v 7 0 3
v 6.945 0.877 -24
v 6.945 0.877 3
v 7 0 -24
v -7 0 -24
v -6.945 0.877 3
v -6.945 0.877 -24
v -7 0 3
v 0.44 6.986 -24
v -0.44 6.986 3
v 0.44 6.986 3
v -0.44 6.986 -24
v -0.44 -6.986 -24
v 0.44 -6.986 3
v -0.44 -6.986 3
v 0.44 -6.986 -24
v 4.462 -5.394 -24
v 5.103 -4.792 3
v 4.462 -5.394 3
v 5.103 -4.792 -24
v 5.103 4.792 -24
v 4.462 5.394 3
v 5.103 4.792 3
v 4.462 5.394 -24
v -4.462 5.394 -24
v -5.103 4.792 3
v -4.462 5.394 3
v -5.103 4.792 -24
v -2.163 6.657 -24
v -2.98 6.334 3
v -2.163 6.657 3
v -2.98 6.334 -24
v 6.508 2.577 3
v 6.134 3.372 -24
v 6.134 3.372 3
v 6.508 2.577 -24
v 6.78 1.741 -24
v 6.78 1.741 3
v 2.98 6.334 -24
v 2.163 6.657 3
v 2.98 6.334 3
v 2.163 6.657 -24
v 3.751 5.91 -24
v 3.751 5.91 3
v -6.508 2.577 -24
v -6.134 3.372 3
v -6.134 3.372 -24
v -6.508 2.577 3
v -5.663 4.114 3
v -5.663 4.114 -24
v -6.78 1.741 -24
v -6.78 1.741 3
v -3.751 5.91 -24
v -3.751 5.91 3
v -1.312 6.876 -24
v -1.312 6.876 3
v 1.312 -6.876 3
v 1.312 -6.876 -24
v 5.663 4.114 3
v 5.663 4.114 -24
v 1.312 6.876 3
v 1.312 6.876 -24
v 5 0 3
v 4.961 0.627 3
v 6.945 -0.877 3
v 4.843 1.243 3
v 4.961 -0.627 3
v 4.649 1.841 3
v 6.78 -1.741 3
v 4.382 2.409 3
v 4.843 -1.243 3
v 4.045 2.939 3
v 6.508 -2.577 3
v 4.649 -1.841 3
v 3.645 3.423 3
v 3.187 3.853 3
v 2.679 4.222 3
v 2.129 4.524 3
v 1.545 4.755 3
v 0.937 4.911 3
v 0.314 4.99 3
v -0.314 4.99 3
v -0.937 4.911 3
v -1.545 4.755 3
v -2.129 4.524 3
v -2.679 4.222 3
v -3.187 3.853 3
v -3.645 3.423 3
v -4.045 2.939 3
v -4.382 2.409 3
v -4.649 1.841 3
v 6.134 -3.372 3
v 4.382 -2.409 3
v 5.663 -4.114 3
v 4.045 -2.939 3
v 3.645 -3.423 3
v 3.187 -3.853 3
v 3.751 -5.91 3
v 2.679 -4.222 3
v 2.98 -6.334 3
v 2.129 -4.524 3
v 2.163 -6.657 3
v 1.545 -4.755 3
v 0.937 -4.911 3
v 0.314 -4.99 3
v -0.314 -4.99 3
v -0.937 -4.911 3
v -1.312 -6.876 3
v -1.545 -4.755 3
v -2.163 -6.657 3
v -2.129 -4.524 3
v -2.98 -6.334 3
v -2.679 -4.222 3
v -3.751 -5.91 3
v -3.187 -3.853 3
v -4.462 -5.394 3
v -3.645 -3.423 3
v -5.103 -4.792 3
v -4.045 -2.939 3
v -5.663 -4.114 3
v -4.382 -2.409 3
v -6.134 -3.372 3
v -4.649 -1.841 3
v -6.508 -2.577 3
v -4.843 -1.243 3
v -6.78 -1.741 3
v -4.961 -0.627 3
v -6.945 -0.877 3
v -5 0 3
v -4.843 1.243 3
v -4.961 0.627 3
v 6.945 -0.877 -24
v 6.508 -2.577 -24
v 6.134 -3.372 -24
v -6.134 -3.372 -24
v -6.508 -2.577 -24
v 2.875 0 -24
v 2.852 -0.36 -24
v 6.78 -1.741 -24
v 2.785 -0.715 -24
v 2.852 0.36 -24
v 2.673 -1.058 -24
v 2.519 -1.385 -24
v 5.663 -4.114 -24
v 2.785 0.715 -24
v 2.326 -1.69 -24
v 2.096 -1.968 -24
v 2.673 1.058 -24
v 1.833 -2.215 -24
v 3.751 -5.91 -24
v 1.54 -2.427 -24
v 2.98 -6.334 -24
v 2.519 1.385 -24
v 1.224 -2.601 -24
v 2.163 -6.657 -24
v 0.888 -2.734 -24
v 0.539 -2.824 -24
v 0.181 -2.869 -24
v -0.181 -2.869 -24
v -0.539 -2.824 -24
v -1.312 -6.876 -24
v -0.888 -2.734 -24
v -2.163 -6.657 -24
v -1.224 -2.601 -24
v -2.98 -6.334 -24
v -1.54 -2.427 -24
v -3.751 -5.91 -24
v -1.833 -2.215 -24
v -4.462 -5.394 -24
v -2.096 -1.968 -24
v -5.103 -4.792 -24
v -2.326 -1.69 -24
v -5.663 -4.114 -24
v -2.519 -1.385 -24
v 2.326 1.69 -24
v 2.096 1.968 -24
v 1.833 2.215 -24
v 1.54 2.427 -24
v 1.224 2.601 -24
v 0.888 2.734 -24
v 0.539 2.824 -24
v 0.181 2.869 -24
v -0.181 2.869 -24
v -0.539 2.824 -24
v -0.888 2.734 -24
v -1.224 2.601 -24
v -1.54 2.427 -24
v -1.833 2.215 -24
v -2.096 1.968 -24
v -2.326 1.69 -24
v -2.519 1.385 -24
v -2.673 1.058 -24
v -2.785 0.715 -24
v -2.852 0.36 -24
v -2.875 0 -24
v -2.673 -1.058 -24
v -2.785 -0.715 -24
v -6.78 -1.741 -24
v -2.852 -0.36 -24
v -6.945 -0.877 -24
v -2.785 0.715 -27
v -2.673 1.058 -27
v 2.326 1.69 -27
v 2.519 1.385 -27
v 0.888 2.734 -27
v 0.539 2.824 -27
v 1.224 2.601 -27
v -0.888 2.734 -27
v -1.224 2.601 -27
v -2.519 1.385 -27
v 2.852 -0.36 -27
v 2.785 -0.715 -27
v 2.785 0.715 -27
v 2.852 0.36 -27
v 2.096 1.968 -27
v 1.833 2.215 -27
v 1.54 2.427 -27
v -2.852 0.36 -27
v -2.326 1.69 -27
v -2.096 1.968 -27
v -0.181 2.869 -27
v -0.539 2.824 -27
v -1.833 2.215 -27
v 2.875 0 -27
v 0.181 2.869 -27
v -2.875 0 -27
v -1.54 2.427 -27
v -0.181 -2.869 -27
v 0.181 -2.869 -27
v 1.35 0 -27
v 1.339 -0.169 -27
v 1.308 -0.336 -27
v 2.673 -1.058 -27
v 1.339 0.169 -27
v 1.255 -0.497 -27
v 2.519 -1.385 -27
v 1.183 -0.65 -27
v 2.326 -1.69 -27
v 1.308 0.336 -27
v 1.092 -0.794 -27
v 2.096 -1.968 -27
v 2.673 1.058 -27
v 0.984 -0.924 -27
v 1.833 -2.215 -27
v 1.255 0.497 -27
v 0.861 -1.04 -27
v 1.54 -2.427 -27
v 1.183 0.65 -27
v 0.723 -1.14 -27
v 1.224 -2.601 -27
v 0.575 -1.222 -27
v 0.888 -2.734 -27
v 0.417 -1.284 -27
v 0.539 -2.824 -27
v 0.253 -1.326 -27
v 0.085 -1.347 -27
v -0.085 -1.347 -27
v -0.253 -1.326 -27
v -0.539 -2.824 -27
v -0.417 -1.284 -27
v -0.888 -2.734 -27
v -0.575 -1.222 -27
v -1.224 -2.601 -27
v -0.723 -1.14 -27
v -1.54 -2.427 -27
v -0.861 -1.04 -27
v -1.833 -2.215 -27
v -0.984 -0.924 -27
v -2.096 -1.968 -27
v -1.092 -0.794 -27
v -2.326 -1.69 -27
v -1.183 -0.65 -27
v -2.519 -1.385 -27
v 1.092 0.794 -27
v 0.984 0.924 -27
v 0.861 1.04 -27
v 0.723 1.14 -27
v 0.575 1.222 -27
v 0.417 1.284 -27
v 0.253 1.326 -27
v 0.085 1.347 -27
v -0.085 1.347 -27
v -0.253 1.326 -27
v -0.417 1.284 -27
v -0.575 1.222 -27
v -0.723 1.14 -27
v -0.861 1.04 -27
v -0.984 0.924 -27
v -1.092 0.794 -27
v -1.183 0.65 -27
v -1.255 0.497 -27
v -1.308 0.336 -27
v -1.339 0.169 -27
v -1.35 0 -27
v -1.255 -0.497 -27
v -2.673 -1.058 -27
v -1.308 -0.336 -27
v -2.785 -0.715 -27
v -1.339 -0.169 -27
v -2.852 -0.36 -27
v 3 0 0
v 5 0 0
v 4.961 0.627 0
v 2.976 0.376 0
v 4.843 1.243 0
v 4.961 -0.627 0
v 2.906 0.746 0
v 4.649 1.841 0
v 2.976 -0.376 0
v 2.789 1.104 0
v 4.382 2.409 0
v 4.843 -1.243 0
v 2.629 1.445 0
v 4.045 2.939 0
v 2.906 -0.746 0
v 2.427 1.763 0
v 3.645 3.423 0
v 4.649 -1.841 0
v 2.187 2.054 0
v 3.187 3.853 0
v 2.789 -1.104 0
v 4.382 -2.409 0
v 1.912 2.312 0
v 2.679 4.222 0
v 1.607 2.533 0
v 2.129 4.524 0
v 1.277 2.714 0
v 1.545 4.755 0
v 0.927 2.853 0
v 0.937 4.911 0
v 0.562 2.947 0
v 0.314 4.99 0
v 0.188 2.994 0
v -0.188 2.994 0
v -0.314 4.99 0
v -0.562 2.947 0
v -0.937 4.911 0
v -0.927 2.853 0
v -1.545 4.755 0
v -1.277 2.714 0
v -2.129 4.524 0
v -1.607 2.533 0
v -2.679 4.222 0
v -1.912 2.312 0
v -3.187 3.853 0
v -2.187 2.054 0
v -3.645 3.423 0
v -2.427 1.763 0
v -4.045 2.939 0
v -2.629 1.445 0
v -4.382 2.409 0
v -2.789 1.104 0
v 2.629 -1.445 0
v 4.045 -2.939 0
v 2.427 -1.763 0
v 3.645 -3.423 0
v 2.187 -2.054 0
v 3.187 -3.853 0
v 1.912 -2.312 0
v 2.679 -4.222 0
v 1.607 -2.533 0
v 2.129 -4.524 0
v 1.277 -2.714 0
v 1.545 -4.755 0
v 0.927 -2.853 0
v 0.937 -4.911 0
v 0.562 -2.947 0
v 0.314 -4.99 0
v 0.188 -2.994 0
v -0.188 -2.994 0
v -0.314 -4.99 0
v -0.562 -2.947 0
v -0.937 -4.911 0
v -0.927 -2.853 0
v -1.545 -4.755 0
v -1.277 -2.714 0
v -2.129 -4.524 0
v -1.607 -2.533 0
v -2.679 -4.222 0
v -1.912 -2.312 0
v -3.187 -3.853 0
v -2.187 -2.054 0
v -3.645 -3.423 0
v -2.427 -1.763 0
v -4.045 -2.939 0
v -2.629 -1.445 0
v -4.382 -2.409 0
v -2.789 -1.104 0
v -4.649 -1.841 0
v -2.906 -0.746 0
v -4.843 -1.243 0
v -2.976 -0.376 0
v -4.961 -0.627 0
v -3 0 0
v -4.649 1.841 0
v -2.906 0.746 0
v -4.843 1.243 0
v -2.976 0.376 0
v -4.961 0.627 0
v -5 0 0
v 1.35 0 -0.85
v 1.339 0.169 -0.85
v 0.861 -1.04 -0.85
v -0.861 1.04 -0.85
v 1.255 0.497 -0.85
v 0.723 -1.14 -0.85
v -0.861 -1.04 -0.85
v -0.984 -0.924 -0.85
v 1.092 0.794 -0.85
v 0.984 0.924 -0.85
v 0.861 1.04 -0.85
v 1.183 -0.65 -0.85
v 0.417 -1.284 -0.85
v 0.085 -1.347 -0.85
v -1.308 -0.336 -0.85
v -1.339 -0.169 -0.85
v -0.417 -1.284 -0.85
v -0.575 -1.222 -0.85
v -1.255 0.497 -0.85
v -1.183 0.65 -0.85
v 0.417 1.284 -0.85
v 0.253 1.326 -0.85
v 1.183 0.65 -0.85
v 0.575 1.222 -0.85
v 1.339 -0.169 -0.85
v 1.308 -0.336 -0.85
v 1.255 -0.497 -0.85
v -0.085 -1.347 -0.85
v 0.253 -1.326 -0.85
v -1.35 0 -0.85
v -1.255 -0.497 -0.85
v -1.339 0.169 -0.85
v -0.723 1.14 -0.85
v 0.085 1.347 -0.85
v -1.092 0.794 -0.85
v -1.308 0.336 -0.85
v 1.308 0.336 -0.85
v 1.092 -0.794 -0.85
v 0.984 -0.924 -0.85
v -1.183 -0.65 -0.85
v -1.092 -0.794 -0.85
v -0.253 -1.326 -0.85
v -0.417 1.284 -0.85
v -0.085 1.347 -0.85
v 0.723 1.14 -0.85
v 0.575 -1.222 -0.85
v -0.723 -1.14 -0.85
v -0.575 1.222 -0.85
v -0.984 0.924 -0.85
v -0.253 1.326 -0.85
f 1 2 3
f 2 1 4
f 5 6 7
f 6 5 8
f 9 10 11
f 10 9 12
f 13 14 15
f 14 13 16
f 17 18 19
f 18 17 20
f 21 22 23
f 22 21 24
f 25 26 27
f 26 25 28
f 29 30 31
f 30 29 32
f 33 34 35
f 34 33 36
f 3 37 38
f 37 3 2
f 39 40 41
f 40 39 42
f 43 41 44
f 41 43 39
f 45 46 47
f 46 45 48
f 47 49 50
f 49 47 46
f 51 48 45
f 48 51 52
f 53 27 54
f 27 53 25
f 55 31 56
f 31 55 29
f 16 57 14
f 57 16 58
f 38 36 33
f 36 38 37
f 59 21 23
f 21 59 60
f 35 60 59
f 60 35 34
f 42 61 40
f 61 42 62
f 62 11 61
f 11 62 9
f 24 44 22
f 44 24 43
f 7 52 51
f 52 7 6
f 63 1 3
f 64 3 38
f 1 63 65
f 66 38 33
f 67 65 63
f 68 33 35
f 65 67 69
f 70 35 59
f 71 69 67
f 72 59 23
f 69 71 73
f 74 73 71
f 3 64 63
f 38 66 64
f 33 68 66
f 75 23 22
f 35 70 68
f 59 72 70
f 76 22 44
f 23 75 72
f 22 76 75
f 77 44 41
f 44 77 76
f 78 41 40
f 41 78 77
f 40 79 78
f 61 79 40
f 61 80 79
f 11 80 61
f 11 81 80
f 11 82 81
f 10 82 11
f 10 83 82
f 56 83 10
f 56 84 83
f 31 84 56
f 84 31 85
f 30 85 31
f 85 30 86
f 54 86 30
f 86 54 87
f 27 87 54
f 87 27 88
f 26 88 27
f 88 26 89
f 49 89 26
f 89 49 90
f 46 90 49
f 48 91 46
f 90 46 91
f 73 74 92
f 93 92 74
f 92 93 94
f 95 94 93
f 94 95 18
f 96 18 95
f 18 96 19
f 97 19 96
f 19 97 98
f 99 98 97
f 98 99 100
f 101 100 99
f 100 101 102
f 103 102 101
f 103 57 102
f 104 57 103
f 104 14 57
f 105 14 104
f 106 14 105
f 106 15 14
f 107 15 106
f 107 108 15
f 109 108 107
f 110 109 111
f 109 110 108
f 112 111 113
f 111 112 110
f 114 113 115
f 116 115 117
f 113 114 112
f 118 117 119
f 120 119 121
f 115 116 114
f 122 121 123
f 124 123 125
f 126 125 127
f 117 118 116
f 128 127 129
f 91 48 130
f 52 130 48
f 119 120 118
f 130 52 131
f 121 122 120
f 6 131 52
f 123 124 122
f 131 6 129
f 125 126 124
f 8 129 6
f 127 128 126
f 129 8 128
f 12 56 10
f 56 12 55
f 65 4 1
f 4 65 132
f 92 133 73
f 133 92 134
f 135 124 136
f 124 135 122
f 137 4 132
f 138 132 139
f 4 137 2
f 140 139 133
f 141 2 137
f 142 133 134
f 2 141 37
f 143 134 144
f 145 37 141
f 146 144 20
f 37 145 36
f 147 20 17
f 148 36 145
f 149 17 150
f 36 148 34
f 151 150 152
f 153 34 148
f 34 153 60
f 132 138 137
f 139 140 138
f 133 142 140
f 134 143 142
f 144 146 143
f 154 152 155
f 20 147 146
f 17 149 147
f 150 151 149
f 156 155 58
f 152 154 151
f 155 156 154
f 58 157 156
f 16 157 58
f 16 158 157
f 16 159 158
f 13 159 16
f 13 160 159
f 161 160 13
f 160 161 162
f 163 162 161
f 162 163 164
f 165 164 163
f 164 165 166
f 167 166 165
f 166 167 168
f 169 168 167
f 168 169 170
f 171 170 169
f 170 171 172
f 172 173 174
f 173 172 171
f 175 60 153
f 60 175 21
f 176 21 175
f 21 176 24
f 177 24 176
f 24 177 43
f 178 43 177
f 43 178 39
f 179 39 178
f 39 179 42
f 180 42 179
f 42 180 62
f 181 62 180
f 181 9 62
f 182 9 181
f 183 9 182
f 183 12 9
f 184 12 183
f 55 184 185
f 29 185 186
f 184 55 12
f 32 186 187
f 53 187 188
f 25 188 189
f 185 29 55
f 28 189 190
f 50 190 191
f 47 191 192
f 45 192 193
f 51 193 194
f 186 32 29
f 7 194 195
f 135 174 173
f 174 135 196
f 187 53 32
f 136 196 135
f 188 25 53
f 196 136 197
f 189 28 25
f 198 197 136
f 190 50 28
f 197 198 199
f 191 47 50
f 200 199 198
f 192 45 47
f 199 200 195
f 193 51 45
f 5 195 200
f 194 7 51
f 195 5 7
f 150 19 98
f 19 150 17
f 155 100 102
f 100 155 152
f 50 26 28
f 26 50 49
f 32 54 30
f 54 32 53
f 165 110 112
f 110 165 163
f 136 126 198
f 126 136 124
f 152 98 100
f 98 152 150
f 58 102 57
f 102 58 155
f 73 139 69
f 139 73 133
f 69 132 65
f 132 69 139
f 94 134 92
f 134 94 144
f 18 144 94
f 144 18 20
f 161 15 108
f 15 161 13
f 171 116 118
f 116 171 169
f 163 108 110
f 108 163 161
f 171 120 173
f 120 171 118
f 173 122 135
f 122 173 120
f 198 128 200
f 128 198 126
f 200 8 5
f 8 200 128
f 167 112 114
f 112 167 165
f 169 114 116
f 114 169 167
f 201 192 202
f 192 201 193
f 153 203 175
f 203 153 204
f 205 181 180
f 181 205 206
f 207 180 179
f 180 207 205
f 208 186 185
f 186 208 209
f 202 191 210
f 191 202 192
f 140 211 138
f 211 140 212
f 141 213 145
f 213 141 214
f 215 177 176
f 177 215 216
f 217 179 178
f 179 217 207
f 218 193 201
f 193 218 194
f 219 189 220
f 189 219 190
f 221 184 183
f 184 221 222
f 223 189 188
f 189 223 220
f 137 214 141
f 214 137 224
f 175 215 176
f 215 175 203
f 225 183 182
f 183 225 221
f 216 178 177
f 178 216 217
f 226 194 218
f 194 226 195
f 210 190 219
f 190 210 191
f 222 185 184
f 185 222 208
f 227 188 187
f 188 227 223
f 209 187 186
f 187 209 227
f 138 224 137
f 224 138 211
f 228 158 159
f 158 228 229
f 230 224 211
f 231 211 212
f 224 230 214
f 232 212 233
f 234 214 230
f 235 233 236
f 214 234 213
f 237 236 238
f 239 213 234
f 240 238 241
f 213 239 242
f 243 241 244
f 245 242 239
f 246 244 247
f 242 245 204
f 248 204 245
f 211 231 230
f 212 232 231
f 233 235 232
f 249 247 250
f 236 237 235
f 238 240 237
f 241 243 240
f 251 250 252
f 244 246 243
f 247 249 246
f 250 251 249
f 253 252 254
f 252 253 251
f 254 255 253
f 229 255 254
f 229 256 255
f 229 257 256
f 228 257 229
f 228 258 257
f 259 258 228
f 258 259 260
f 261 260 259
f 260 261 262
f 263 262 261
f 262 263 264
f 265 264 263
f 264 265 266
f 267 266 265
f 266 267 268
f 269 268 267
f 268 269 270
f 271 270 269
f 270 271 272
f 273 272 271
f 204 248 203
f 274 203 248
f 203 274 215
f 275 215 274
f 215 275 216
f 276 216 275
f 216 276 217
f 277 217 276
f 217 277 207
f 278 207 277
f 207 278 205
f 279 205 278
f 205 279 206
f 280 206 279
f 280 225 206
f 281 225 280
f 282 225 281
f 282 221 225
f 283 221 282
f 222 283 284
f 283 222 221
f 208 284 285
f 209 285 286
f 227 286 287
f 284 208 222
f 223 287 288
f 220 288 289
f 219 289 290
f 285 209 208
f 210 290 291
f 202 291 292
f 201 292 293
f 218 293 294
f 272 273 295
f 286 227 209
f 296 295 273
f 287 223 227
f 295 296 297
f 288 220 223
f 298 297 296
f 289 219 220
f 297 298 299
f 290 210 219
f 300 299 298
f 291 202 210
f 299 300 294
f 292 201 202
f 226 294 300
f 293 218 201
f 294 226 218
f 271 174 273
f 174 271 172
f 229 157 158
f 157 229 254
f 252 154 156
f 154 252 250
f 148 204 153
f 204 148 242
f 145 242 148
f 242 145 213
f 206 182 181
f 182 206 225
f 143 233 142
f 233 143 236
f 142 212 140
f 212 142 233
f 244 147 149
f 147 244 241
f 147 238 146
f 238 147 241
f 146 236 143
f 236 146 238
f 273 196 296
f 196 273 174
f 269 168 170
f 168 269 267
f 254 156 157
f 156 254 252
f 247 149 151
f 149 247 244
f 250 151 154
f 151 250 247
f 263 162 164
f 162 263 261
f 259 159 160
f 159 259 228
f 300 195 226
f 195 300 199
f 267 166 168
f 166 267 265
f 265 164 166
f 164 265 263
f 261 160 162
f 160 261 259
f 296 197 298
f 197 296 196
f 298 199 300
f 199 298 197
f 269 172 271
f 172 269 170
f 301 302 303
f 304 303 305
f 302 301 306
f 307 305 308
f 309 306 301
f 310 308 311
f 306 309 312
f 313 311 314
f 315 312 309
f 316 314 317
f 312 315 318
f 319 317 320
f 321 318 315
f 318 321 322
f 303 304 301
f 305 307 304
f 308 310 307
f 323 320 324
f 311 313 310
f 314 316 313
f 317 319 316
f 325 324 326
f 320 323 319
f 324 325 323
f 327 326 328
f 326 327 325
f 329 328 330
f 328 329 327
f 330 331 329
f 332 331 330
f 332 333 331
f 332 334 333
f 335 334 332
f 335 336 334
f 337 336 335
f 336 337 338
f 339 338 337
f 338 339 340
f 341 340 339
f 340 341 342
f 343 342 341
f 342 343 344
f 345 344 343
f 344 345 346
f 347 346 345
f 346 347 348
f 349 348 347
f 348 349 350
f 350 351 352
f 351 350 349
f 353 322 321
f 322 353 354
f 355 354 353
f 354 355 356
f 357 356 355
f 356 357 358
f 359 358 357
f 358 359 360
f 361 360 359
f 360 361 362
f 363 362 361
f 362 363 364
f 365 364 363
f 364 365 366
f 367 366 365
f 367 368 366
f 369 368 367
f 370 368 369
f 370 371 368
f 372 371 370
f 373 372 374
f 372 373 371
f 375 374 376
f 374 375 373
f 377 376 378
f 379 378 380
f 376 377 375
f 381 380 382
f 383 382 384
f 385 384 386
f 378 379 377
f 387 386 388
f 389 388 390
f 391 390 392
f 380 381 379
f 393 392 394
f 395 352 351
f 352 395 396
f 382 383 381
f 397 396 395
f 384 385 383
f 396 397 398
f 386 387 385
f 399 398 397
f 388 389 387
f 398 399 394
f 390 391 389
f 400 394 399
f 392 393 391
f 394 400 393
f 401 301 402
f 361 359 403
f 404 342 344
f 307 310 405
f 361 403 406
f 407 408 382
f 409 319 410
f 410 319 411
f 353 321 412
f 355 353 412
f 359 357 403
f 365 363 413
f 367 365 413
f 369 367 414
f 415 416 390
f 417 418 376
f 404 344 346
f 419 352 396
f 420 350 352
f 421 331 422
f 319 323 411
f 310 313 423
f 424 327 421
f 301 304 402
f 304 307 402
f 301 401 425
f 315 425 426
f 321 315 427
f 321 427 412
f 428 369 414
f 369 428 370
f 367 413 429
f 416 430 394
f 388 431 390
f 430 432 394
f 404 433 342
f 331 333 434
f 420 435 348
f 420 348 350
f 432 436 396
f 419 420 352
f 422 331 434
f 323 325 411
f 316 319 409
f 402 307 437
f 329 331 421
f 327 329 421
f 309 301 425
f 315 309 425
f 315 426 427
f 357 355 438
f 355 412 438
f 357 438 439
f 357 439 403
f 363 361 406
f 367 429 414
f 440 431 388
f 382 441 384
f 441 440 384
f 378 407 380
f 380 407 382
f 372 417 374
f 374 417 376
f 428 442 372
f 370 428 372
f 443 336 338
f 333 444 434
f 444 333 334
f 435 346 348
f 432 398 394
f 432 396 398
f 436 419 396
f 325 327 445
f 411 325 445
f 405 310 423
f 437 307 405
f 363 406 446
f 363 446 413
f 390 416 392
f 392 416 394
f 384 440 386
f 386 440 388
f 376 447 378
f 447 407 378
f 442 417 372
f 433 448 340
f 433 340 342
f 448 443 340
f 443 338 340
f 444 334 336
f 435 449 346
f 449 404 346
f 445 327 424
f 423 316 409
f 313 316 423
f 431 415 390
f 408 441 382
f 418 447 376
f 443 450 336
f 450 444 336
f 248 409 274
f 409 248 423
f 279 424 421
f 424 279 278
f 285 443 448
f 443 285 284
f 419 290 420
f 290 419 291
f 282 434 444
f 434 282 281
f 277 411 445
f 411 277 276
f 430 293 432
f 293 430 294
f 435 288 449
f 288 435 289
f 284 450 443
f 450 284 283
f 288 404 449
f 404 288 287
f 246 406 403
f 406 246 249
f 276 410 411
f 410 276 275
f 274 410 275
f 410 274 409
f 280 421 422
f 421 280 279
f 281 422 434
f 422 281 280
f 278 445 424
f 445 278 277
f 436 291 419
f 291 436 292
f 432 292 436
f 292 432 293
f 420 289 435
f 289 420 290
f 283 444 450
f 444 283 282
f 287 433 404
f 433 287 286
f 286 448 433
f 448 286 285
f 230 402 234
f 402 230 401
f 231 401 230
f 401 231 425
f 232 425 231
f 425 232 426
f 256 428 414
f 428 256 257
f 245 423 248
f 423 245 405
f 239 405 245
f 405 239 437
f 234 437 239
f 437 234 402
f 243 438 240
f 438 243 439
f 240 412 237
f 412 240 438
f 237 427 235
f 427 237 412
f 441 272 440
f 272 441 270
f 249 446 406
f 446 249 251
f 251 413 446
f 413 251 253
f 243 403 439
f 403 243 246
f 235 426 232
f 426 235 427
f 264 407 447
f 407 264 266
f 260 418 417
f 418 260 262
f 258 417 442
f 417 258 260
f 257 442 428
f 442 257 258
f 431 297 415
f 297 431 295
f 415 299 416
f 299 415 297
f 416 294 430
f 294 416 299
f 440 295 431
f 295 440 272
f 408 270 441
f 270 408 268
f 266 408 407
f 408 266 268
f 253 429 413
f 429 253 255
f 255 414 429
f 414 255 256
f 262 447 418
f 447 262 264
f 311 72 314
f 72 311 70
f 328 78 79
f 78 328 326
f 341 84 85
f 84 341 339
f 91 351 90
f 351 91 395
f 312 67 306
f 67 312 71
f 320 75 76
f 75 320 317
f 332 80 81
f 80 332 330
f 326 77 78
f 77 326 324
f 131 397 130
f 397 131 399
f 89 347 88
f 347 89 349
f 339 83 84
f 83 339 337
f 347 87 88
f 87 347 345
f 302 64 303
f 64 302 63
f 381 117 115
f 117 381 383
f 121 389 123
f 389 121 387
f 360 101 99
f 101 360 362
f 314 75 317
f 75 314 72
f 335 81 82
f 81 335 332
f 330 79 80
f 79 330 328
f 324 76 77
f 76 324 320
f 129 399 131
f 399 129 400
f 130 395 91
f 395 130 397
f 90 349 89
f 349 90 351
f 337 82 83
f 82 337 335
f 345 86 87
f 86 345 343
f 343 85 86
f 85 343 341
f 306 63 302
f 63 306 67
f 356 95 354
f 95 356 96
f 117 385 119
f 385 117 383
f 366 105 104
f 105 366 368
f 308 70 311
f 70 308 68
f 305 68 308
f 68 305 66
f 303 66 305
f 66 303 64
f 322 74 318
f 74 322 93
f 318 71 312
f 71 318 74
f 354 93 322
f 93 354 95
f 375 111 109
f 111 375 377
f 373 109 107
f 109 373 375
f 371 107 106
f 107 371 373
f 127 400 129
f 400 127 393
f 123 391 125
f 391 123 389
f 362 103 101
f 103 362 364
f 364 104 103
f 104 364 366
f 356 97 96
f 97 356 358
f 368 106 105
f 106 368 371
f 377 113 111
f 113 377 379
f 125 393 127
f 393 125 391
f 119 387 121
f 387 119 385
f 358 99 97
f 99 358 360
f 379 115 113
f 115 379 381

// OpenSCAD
$fn = 50;

difference() {
	union() {
		translate(v = [0, 0, -24.0]) {
			cylinder(h = 27, r = 7.0);
		}
		#translate(v = [0, 0, -27.0]) {
			cylinder(h = 27, r = 2.875);
		}
	}
	union() {
		translate(v = [0, 0, 0]) {
			rotate(a = [0, 0, 0]) {
				difference() {
					union() {
						translate(v = [0, 0, -27.0]) {
							cylinder(h = 27, r = 1.0);
						}
						translate(v = [0, 0, -0.85]) {
							cylinder(h = 0.85, r1 = 1.35, r2 = 3.0);
						}
						translate(v = [0, 0, -27.0]) {
							cylinder(h = 27, r = 1.35);
						}
						translate(v = [0, 0, -27.0]) {
							cylinder(h = 27, r = 1.0);
						}
					}
					union();
				}
			}
		}
		#cylinder(h = 3, r = 5.0);
	}
}
